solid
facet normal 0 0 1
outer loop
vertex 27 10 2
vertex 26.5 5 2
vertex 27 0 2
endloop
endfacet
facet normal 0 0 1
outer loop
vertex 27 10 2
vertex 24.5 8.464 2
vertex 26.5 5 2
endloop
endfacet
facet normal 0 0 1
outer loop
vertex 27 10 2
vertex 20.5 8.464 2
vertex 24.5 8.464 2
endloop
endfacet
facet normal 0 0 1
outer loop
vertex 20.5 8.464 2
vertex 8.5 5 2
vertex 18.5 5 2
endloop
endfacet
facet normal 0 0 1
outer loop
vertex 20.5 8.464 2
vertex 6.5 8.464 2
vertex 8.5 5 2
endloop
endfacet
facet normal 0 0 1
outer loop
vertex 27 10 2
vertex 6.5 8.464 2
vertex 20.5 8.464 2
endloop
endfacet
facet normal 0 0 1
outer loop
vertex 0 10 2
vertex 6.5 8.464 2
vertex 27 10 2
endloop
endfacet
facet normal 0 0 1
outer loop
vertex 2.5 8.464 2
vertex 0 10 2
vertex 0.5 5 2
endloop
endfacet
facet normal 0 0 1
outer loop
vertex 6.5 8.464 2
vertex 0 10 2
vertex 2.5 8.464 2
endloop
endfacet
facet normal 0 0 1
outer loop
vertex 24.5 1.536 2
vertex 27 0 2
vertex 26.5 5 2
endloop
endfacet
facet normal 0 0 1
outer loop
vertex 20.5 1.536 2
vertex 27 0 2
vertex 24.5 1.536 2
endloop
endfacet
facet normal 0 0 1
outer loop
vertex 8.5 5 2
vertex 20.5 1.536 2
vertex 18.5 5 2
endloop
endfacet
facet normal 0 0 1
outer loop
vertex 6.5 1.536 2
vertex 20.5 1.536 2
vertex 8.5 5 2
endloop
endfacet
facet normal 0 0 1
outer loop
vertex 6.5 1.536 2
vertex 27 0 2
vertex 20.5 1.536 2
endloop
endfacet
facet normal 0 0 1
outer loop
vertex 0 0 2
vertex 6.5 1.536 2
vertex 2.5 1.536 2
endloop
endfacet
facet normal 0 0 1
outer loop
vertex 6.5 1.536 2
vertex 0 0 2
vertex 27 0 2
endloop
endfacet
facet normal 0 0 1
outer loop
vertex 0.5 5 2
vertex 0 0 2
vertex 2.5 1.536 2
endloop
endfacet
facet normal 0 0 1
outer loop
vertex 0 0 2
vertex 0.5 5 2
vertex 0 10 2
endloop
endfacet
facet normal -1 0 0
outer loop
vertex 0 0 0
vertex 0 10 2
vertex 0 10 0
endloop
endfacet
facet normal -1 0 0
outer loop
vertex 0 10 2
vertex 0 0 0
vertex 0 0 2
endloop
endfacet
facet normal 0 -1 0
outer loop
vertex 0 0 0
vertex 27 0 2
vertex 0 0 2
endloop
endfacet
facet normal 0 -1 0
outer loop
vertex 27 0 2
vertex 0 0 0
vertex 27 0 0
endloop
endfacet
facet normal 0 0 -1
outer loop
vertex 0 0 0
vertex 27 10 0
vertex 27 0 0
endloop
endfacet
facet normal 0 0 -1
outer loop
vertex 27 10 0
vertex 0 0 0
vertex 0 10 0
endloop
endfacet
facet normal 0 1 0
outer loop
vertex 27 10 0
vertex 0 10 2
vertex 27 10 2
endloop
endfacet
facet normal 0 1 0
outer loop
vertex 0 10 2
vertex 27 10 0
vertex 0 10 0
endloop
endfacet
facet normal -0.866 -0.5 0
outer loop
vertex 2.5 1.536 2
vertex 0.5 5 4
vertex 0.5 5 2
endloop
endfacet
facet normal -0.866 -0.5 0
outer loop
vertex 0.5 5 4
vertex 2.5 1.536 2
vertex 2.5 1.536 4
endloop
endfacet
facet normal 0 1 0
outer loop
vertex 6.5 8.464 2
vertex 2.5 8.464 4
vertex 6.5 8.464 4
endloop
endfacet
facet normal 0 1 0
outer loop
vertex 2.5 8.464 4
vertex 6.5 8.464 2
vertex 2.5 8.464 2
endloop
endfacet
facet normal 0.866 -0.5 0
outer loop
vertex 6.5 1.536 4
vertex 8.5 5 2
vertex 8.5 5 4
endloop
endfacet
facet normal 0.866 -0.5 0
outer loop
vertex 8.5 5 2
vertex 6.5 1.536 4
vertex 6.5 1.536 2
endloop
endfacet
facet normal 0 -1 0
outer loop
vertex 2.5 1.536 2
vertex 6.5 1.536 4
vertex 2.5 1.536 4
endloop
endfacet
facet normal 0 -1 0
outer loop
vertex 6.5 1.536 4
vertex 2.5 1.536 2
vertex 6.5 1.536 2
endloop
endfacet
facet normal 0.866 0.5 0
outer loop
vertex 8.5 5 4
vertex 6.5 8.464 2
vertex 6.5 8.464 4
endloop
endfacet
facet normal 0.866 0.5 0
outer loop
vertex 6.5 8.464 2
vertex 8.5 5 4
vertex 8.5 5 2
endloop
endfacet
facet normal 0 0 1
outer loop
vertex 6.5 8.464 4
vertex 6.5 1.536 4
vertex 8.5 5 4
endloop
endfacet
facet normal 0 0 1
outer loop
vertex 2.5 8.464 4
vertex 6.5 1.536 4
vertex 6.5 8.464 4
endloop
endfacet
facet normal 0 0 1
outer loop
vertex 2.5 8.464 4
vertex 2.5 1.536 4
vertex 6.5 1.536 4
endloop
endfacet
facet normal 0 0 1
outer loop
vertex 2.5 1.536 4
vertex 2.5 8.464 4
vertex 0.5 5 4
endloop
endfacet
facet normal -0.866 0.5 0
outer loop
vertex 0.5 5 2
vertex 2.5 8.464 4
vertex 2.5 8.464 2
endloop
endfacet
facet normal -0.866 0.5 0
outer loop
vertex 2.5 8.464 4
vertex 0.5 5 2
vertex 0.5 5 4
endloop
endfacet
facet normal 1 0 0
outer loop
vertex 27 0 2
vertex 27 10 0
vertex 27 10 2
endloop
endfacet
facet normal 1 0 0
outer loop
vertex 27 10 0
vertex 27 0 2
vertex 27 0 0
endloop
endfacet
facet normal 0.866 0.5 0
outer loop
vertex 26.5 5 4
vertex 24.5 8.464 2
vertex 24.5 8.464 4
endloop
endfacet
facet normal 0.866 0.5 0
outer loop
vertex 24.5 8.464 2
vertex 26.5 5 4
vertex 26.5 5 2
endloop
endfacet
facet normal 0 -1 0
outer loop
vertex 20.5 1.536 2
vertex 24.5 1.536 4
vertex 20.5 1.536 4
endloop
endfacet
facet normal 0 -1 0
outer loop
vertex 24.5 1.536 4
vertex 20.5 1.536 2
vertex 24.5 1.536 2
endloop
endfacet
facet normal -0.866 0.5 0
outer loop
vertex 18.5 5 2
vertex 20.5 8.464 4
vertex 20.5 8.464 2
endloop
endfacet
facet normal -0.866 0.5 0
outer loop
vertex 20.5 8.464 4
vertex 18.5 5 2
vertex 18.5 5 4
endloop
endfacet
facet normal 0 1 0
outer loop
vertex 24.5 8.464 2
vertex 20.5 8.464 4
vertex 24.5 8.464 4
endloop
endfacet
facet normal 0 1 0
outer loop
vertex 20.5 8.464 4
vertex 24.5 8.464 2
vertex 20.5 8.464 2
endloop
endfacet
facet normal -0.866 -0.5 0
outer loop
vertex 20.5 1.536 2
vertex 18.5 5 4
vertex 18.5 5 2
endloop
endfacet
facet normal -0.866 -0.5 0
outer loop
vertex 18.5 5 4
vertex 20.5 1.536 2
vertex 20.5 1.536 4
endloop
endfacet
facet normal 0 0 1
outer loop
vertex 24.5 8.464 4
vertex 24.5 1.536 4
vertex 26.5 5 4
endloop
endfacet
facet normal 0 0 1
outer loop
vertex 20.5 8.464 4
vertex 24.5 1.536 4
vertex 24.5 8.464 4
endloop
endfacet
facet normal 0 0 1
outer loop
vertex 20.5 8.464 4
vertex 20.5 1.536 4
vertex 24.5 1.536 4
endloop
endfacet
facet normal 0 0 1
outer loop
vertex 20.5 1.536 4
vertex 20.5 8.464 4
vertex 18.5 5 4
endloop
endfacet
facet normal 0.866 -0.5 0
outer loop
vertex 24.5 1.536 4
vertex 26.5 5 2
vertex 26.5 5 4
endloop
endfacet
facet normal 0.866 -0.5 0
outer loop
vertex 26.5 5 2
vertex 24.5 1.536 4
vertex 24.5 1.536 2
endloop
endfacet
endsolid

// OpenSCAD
lipWidth = 10;
width = lipWidth;
height = 2;
connectorFemaleDiameter = 4;
connectorFemaleHeight = 2;
maleToFemaleDiff = 0;
maleToFemaleOffset = maleToFemaleDiff / 2;
connectorMaleDiameter = connectorFemaleDiameter - maleToFemaleDiff;
connectorMaleHeight = connectorFemaleHeight;
connectorLengthOffset = 5;
length = (connectorFemaleDiameter * 2 + connectorLengthOffset) + .5;
connectorWidthOffset = width / 2;

translate([length, 0, 0])
    HalfConnector();
translate([length, width])
    rotate([0, 0, 180])
        HalfConnector();

module HalfConnector()
{
    $fn = 6;
    union() {
        cube([length, width, height]);
        translate([connectorMaleDiameter + connectorLengthOffset + maleToFemaleOffset, connectorWidthOffset, height])
            cylinder(h = connectorMaleHeight, r = connectorMaleDiameter);
    }
}
